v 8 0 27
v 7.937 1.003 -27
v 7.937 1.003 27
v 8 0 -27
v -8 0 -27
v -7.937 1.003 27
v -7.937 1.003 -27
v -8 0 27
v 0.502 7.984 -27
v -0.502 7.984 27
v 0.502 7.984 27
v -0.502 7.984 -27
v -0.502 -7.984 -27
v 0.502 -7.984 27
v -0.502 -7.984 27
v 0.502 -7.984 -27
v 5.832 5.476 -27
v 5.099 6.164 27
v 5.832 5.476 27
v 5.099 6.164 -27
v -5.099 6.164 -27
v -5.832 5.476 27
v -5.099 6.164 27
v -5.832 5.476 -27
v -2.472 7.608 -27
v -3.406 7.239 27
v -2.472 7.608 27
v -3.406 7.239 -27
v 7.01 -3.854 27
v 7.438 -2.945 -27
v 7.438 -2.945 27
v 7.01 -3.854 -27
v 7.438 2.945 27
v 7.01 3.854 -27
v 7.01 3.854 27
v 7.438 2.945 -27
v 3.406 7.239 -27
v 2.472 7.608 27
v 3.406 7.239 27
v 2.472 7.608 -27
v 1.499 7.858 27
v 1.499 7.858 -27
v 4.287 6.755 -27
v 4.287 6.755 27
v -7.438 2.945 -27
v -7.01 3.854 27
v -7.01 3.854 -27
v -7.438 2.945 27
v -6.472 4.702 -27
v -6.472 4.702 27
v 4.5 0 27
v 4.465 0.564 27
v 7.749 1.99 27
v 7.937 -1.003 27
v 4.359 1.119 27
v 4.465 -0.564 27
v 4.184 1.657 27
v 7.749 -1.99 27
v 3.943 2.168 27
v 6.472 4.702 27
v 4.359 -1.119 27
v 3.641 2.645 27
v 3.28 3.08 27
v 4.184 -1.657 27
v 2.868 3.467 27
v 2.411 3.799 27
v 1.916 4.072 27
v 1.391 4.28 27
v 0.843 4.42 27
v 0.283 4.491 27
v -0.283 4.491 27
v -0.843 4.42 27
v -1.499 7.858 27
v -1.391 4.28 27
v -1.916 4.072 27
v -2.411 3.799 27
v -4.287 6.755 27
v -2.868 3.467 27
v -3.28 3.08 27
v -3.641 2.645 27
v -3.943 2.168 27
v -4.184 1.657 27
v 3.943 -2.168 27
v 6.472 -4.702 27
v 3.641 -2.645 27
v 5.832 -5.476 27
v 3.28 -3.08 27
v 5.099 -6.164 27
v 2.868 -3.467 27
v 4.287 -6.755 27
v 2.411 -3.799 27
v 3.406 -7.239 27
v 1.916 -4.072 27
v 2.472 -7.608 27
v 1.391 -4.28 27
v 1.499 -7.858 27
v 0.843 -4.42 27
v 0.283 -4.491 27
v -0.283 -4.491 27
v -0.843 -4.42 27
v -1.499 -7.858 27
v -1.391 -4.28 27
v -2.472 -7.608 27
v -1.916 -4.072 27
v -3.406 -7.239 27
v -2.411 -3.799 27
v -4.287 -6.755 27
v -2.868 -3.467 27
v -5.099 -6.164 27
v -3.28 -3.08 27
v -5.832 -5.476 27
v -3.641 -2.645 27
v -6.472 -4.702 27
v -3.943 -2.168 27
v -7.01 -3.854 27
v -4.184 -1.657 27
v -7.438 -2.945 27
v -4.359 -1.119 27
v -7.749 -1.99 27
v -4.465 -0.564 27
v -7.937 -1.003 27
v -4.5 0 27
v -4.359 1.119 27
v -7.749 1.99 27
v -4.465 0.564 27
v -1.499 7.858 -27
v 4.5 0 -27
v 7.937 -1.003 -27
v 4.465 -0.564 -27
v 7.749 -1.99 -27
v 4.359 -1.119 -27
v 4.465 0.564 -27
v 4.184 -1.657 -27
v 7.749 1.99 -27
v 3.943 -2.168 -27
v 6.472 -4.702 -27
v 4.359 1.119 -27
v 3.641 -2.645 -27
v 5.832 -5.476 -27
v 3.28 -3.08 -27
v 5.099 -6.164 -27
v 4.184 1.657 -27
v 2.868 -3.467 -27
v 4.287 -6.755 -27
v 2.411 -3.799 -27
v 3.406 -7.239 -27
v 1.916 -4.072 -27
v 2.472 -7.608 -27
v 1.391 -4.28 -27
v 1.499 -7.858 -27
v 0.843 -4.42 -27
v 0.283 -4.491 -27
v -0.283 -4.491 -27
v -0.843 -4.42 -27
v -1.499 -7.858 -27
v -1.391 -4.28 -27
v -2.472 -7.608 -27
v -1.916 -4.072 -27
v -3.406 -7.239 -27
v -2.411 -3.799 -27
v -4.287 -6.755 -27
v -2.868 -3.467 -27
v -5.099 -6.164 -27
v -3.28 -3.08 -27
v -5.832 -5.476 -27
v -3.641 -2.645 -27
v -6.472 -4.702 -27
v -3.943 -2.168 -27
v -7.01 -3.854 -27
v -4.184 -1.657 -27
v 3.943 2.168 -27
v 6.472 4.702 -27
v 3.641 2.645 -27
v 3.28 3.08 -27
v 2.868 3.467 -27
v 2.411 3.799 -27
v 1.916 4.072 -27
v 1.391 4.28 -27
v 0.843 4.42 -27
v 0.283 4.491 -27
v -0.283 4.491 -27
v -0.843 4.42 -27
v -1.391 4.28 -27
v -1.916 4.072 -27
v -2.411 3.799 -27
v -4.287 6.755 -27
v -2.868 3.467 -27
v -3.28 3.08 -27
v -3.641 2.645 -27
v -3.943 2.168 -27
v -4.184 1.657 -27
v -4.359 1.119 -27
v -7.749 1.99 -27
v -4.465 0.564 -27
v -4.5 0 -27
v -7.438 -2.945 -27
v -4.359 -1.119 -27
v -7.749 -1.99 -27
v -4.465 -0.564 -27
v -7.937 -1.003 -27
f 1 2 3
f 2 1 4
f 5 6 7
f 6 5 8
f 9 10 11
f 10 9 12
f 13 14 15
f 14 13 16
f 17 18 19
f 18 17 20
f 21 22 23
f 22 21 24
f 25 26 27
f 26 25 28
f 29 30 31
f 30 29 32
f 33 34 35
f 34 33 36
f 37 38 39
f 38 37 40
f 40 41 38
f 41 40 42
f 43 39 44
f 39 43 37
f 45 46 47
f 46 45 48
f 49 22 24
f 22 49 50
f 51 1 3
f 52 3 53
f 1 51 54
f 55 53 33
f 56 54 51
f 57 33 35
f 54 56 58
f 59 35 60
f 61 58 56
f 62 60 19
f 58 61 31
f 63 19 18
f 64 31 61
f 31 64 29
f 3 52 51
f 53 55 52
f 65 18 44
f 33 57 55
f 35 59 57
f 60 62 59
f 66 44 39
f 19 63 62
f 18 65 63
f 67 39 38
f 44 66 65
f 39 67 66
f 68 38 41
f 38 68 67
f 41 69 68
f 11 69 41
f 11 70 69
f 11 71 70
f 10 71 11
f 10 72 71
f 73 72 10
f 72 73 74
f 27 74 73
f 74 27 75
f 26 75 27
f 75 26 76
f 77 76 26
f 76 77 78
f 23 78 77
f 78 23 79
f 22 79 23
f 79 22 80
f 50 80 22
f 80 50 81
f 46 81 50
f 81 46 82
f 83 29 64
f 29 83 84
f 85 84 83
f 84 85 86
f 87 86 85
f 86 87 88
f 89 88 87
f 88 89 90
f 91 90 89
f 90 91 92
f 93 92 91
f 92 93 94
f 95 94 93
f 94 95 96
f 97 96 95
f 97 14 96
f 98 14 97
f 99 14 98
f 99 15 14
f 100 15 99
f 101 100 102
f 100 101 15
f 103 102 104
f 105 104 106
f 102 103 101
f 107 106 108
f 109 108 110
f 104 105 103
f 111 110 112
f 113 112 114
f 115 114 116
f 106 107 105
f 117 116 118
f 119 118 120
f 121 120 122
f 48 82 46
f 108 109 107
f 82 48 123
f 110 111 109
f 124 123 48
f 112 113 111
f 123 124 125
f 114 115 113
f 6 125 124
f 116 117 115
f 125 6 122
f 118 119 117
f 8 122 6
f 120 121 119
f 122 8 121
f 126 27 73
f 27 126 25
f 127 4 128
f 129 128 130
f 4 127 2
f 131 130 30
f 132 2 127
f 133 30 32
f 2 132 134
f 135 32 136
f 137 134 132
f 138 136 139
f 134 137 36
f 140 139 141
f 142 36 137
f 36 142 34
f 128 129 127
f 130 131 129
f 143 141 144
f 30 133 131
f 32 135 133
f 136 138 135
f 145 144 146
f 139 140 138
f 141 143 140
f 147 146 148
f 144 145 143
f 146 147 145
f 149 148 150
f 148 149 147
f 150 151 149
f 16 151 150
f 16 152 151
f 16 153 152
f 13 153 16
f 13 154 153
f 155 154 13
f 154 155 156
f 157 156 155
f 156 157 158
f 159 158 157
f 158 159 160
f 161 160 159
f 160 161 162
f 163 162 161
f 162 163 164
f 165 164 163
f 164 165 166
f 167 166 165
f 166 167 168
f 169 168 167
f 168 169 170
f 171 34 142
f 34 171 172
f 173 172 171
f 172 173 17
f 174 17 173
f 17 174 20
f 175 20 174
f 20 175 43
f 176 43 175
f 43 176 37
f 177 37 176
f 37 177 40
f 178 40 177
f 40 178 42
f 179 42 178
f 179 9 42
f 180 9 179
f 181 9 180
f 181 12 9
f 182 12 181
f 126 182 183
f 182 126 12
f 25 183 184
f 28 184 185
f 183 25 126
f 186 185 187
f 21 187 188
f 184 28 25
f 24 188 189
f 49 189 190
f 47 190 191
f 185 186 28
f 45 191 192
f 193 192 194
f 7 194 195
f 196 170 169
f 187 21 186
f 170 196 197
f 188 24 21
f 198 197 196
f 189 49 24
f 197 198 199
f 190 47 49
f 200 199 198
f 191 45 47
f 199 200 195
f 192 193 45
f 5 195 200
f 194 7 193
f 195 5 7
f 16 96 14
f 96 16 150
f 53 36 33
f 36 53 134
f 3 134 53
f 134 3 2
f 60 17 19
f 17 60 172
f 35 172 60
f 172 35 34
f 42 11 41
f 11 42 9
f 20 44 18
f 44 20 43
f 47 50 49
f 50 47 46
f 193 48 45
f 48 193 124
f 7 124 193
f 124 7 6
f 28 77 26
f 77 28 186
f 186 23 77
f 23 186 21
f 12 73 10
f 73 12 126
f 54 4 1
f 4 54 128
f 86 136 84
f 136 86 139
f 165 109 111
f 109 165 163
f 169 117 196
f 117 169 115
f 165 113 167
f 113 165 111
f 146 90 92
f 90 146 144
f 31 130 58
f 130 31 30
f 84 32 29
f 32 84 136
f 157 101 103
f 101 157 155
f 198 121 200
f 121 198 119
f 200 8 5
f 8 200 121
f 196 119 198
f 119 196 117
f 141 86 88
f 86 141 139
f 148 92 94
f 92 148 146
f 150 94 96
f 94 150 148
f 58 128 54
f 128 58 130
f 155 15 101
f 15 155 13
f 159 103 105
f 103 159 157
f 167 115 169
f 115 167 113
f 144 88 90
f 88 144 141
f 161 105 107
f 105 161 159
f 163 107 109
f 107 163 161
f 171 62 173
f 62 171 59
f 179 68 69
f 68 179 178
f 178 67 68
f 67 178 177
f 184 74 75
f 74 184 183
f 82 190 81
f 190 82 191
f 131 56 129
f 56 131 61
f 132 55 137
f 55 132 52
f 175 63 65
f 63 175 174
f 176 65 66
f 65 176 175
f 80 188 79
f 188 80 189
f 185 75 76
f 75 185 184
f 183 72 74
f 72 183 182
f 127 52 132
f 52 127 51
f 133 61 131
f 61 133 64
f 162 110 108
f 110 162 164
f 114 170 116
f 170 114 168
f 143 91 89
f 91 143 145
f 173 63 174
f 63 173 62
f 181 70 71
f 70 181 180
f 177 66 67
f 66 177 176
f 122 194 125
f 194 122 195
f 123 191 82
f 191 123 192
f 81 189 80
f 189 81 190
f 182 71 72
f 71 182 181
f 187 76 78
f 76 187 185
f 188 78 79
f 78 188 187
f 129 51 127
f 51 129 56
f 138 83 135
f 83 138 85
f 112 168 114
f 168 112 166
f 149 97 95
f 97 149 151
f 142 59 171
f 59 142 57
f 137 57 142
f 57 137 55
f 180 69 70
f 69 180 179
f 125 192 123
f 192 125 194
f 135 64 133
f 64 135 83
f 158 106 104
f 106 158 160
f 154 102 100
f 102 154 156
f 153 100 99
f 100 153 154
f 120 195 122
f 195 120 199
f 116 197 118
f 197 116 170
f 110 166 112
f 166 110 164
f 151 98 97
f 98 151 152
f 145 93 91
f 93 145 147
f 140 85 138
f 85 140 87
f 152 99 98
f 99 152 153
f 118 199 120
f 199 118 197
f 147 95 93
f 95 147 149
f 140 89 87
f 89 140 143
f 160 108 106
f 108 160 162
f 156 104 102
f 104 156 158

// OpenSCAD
$fn = 50;


difference() {
	union() {
		translate(v = [0, 0, -27.0000000000]) {
			cylinder(h = 54, r = 8.0000000000);
		}
	}
	union() {
		translate(v = [0, 0, -100.0000000000]) {
			cylinder(h = 200, r = 4.5000000000);
		}
	}
}
